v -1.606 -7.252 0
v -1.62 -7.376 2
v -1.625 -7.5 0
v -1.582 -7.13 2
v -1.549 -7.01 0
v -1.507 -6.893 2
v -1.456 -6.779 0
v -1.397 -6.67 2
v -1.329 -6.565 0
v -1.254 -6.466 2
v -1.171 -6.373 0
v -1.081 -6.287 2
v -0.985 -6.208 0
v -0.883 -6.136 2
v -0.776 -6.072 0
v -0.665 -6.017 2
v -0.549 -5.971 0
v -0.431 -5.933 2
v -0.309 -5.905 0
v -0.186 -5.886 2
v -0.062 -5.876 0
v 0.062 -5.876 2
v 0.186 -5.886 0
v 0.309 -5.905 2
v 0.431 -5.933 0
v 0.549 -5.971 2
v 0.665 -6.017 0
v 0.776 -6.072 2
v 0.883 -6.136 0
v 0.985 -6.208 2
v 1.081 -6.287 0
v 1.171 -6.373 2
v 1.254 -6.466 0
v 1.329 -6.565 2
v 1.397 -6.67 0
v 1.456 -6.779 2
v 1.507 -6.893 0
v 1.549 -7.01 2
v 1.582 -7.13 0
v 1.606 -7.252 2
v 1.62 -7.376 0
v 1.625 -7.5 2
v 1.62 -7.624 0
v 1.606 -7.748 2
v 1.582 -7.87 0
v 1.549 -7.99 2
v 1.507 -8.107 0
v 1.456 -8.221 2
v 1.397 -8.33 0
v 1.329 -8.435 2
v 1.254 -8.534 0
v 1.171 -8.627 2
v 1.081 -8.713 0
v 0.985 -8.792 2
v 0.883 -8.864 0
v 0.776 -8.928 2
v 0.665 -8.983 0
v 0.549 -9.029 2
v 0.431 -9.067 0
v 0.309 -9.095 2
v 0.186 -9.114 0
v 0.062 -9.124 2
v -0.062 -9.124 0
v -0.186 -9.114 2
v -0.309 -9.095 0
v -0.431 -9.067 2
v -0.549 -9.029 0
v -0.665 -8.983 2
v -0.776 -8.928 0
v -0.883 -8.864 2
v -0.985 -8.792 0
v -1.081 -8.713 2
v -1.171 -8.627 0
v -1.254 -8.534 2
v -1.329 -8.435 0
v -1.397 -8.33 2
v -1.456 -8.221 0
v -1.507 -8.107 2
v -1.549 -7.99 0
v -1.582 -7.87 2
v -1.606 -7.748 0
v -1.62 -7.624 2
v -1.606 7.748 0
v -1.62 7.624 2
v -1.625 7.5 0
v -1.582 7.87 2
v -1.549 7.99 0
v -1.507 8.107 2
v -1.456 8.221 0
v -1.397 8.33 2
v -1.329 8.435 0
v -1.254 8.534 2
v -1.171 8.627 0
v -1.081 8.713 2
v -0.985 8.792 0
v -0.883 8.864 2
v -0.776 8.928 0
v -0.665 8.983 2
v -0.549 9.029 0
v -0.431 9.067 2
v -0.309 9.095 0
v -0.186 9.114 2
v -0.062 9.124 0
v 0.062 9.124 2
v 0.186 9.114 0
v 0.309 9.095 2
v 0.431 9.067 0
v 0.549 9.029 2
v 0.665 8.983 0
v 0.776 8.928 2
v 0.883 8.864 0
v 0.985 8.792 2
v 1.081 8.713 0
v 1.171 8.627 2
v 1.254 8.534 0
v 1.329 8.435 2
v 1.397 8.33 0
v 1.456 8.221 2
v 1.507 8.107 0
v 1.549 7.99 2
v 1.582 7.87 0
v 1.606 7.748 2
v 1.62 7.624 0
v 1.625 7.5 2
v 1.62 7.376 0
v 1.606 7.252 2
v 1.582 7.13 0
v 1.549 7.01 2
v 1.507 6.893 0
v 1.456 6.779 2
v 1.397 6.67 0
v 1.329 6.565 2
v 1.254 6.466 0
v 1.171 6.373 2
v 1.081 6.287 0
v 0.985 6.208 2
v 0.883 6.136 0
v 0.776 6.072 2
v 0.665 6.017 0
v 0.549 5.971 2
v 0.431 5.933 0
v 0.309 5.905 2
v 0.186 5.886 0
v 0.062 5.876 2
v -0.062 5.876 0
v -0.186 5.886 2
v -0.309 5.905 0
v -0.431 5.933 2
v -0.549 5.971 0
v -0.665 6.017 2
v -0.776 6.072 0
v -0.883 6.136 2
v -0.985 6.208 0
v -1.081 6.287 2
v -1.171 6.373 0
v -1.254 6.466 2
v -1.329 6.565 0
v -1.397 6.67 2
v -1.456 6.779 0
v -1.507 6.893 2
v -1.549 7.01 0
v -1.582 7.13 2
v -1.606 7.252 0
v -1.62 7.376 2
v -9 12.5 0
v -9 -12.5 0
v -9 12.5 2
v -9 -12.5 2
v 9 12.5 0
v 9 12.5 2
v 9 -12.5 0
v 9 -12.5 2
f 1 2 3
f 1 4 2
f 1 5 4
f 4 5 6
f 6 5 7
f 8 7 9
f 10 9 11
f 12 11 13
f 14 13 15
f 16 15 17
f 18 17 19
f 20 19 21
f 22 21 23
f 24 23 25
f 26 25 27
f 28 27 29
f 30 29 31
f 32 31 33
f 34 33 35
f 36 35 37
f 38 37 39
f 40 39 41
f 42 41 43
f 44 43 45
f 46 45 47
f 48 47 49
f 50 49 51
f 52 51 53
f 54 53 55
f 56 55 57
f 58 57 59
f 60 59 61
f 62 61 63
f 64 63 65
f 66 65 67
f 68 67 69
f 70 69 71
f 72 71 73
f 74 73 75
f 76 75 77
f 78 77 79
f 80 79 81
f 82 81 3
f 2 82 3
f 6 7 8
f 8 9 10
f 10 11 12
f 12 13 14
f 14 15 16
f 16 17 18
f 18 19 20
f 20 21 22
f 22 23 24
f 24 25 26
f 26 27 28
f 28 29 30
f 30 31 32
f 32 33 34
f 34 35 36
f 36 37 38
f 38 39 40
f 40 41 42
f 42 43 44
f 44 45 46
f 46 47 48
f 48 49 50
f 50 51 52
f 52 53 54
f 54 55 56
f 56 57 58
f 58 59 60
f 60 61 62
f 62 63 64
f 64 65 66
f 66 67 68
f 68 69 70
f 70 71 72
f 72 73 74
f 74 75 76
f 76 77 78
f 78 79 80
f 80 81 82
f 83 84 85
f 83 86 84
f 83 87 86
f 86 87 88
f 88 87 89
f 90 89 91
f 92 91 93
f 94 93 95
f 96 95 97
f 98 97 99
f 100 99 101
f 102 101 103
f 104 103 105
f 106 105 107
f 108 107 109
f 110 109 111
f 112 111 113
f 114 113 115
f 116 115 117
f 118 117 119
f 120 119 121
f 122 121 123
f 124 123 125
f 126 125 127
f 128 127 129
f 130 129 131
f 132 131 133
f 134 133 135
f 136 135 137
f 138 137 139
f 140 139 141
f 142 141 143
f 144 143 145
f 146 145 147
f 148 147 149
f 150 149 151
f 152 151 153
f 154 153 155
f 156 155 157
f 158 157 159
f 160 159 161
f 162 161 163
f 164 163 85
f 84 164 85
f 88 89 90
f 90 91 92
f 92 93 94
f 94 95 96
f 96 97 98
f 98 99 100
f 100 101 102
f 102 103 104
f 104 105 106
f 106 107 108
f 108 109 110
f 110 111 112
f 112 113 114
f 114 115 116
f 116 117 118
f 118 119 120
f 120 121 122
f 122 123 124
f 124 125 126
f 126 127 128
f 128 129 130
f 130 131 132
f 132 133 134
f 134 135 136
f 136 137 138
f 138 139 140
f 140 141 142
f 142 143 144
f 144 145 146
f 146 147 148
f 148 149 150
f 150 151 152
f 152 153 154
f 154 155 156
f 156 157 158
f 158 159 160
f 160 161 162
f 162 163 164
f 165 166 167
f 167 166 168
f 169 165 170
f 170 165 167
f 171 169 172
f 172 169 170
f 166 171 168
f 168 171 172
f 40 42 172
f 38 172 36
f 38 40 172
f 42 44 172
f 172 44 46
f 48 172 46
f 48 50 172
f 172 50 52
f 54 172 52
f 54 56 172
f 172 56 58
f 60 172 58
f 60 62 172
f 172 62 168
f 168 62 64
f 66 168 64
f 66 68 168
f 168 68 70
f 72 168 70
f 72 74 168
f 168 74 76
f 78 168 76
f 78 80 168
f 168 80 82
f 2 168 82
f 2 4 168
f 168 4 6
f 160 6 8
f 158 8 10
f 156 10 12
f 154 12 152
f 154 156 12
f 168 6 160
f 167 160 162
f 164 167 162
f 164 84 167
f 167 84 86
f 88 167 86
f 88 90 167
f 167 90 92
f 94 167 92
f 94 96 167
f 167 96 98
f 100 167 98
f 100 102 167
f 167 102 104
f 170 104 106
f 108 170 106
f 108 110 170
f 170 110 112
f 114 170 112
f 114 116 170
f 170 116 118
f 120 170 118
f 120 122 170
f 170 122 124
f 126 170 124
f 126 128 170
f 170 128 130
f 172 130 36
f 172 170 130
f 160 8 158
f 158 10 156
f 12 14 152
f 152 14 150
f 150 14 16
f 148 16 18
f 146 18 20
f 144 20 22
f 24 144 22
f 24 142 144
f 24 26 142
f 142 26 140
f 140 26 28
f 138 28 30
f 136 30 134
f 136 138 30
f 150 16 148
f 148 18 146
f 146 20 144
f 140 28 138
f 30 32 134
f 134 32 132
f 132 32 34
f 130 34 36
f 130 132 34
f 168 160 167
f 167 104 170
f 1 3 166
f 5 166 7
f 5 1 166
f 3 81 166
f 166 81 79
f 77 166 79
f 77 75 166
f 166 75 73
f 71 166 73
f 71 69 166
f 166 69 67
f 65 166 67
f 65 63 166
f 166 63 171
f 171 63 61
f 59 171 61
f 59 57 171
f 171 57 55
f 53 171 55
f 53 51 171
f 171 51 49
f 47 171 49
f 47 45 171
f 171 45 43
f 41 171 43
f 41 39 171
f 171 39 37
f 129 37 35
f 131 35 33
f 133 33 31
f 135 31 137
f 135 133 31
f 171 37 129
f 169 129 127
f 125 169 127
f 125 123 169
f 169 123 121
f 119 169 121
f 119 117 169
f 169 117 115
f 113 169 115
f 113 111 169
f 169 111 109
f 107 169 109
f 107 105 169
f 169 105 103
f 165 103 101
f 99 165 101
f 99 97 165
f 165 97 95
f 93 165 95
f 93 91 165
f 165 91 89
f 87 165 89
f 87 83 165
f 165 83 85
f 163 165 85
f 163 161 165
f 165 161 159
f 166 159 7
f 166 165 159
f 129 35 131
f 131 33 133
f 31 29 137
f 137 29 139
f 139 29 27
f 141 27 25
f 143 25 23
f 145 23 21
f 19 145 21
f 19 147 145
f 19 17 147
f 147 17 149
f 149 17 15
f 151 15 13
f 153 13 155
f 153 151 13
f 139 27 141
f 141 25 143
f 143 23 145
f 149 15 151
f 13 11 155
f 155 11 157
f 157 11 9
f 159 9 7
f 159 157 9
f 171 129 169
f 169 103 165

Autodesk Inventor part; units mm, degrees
ref_plane "YZ Plane" through (0, 0, 0) normal (1, 0, 0) x (0, 1, 0)
ref_plane "XZ Plane" through (0, 0, 0) normal (0, 1, 0) x (-1, 0, 0)
ref_plane "XY Plane" through (0, 0, 0) normal (0, 0, 1) x (1, 0, 0)
sketch "Sketch1" plane through (0, 0, 0) normal (0, 0, 1) x (1, 0, 0)
  line L0 (-9, -12.5) -> (9, -12.5)
  line L1 (9, -12.5) -> (9, 12.5)
  line L2 (9, 12.5) -> (-9, 12.5)
  line L3 (-9, 12.5) -> (-9, -12.5)
extrude "Extrusion1" add sketch "Sketch1" along normal blind 2
sketch "Sketch4" plane through (0, 0, 2) normal (0, 0, 1) x (1, 0, 0)
  circle A0 centre (0, 7.5) radius 1.625
  circle A1 centre (0, -7.5) radius 1.625
  point P0 (0, 0)
  dimension "d4" = 3.25
hole "Hole1" at (0, -7.5, 2) at (0, 7.5, 2) direction (0, 0, -1) diameter 3.25 end through all
properties part number "CONNECTOR_PLATE"
